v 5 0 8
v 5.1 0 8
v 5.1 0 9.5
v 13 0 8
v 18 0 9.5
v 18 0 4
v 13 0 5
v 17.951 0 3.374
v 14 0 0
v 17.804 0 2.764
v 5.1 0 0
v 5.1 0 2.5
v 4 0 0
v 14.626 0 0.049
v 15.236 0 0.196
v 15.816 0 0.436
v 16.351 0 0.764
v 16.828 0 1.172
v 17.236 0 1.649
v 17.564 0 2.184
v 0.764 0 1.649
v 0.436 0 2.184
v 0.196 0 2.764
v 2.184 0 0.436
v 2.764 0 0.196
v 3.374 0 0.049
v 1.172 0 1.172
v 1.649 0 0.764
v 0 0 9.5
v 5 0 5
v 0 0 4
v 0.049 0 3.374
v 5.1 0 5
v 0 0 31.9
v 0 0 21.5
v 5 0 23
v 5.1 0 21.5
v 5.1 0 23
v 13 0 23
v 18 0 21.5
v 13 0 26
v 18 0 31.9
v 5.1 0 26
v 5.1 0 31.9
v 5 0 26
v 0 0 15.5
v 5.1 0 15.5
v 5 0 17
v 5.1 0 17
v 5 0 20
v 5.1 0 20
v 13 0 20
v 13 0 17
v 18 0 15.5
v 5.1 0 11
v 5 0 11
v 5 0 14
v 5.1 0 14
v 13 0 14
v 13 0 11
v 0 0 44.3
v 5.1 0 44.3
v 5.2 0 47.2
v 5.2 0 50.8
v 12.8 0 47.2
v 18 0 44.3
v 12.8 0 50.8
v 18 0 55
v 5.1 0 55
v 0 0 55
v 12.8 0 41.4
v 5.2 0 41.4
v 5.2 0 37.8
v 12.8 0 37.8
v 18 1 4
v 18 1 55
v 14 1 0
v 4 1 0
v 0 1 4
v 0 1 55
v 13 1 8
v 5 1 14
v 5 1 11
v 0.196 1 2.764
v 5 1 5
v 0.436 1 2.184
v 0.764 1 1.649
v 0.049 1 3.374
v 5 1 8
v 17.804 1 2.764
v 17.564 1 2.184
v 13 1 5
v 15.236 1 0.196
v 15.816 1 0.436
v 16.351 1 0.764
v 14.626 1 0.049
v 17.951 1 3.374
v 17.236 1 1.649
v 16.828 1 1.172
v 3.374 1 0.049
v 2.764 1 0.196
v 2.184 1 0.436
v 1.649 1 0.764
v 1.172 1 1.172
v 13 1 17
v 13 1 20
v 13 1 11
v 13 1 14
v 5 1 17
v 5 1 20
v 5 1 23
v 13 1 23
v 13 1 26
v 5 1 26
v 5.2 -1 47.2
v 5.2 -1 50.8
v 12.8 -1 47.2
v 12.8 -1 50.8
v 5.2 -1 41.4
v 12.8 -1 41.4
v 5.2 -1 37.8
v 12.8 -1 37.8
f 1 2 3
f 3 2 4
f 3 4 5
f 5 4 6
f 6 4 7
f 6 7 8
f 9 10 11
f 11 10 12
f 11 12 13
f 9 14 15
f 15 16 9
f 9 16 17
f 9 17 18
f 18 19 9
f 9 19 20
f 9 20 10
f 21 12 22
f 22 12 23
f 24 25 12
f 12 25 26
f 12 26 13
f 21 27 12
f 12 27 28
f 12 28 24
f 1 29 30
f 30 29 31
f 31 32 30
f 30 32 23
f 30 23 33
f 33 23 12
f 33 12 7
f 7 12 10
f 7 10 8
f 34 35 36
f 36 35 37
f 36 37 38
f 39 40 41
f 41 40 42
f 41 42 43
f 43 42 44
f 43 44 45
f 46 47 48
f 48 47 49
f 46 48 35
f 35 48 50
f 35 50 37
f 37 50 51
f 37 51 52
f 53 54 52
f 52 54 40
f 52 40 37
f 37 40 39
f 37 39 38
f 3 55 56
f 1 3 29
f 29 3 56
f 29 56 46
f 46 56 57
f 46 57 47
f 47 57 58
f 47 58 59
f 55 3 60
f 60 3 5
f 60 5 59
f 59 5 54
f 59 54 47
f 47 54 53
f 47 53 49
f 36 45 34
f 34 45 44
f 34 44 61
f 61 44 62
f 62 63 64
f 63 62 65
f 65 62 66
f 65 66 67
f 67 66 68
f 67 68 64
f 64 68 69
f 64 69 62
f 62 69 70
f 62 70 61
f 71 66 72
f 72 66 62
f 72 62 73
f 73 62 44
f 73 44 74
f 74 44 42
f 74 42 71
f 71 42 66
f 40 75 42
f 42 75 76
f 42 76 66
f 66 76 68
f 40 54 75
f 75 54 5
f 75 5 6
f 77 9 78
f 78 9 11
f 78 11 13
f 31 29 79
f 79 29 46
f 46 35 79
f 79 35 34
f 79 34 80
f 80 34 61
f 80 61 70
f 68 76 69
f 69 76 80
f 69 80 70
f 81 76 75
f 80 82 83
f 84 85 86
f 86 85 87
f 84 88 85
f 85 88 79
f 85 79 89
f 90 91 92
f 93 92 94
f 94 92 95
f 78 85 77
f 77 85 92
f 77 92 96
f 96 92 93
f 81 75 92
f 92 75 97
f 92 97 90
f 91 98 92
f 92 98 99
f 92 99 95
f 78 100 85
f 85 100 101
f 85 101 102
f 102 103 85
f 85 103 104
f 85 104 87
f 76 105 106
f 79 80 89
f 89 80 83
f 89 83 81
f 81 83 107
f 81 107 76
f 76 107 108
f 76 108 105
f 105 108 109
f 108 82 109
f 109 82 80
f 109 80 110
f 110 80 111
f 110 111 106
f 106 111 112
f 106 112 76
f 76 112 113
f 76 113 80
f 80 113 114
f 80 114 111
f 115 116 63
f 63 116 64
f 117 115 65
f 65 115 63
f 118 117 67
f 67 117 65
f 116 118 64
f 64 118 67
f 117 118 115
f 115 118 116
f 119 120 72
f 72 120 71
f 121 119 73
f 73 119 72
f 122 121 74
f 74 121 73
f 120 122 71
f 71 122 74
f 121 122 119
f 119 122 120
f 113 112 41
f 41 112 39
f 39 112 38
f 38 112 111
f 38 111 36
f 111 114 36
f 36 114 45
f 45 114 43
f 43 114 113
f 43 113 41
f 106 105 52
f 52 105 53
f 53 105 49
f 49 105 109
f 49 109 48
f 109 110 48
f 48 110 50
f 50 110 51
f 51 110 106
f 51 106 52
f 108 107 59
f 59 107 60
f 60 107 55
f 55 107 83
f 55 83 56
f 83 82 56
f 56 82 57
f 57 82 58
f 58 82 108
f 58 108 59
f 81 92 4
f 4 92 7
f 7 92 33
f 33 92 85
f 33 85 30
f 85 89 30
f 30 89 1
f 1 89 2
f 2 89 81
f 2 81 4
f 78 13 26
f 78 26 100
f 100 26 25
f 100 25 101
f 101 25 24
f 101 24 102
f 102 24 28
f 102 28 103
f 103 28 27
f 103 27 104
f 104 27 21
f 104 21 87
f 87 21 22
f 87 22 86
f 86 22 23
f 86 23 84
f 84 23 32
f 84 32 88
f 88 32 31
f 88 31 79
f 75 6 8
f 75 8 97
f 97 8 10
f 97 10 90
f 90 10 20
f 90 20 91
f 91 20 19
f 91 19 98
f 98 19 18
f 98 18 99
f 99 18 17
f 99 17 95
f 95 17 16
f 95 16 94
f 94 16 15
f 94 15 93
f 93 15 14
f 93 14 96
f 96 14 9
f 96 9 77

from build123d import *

# Parameters (mm, degrees)
SKETCH1_W           = 18
SKETCH1_H           = 55
BOSS_EXTRUDE1_DEPTH = 1
SKETCH2_W           = 7.6
SKETCH2_H           = 3.6
BOSS_EXTRUDE2_DEPTH = 1
SKETCH3_W           = 8
SKETCH3_H           = 3
CUT_EXTRUDE1_DEPTH  = 2
FILLET1_R           = 4


with BuildPart() as part:
    # Sketch1 → Boss-Extrude1 (new body)
    with BuildSketch(Plane(origin=(0, 0, 0), x_dir=(1, 0, 0), z_dir=(0, 1, 0))):
        with Locations((9, -27.5)):
            Rectangle(SKETCH1_W, SKETCH1_H)
    extrude(amount=BOSS_EXTRUDE1_DEPTH)

    # Sketch2 → Boss-Extrude2 (add)
    with BuildSketch(Plane.XZ):
        with Locations((9, 49)):
            Rectangle(SKETCH2_W, SKETCH2_H)
        with Locations((9, 39.6)):
            Rectangle(SKETCH2_W, SKETCH2_H)
    extrude(amount=BOSS_EXTRUDE2_DEPTH)

    # Sketch3 → Cut-Extrude1 (cut, through all)
    with BuildSketch(Plane.XZ):
        with Locations((9, 12.5)):
            Rectangle(SKETCH3_W, SKETCH3_H)
        with Locations((9, 6.5)):
            Rectangle(SKETCH3_W, SKETCH3_H)
        with Locations((9, 18.5)):
            Rectangle(SKETCH3_W, SKETCH3_H)
        with Locations((9, 24.5)):
            Rectangle(SKETCH3_W, SKETCH3_H)
    extrude(amount=-CUT_EXTRUDE1_DEPTH, mode=Mode.SUBTRACT)

    # Fillet1
    fillet1_edges = [part.edges().sort_by_distance(p)[0] for p in [
        (0, 0.5, 0),
        (18, 0.5, 0),
    ]]
    fillet(fillet1_edges, radius=FILLET1_R)


solid = part.part
